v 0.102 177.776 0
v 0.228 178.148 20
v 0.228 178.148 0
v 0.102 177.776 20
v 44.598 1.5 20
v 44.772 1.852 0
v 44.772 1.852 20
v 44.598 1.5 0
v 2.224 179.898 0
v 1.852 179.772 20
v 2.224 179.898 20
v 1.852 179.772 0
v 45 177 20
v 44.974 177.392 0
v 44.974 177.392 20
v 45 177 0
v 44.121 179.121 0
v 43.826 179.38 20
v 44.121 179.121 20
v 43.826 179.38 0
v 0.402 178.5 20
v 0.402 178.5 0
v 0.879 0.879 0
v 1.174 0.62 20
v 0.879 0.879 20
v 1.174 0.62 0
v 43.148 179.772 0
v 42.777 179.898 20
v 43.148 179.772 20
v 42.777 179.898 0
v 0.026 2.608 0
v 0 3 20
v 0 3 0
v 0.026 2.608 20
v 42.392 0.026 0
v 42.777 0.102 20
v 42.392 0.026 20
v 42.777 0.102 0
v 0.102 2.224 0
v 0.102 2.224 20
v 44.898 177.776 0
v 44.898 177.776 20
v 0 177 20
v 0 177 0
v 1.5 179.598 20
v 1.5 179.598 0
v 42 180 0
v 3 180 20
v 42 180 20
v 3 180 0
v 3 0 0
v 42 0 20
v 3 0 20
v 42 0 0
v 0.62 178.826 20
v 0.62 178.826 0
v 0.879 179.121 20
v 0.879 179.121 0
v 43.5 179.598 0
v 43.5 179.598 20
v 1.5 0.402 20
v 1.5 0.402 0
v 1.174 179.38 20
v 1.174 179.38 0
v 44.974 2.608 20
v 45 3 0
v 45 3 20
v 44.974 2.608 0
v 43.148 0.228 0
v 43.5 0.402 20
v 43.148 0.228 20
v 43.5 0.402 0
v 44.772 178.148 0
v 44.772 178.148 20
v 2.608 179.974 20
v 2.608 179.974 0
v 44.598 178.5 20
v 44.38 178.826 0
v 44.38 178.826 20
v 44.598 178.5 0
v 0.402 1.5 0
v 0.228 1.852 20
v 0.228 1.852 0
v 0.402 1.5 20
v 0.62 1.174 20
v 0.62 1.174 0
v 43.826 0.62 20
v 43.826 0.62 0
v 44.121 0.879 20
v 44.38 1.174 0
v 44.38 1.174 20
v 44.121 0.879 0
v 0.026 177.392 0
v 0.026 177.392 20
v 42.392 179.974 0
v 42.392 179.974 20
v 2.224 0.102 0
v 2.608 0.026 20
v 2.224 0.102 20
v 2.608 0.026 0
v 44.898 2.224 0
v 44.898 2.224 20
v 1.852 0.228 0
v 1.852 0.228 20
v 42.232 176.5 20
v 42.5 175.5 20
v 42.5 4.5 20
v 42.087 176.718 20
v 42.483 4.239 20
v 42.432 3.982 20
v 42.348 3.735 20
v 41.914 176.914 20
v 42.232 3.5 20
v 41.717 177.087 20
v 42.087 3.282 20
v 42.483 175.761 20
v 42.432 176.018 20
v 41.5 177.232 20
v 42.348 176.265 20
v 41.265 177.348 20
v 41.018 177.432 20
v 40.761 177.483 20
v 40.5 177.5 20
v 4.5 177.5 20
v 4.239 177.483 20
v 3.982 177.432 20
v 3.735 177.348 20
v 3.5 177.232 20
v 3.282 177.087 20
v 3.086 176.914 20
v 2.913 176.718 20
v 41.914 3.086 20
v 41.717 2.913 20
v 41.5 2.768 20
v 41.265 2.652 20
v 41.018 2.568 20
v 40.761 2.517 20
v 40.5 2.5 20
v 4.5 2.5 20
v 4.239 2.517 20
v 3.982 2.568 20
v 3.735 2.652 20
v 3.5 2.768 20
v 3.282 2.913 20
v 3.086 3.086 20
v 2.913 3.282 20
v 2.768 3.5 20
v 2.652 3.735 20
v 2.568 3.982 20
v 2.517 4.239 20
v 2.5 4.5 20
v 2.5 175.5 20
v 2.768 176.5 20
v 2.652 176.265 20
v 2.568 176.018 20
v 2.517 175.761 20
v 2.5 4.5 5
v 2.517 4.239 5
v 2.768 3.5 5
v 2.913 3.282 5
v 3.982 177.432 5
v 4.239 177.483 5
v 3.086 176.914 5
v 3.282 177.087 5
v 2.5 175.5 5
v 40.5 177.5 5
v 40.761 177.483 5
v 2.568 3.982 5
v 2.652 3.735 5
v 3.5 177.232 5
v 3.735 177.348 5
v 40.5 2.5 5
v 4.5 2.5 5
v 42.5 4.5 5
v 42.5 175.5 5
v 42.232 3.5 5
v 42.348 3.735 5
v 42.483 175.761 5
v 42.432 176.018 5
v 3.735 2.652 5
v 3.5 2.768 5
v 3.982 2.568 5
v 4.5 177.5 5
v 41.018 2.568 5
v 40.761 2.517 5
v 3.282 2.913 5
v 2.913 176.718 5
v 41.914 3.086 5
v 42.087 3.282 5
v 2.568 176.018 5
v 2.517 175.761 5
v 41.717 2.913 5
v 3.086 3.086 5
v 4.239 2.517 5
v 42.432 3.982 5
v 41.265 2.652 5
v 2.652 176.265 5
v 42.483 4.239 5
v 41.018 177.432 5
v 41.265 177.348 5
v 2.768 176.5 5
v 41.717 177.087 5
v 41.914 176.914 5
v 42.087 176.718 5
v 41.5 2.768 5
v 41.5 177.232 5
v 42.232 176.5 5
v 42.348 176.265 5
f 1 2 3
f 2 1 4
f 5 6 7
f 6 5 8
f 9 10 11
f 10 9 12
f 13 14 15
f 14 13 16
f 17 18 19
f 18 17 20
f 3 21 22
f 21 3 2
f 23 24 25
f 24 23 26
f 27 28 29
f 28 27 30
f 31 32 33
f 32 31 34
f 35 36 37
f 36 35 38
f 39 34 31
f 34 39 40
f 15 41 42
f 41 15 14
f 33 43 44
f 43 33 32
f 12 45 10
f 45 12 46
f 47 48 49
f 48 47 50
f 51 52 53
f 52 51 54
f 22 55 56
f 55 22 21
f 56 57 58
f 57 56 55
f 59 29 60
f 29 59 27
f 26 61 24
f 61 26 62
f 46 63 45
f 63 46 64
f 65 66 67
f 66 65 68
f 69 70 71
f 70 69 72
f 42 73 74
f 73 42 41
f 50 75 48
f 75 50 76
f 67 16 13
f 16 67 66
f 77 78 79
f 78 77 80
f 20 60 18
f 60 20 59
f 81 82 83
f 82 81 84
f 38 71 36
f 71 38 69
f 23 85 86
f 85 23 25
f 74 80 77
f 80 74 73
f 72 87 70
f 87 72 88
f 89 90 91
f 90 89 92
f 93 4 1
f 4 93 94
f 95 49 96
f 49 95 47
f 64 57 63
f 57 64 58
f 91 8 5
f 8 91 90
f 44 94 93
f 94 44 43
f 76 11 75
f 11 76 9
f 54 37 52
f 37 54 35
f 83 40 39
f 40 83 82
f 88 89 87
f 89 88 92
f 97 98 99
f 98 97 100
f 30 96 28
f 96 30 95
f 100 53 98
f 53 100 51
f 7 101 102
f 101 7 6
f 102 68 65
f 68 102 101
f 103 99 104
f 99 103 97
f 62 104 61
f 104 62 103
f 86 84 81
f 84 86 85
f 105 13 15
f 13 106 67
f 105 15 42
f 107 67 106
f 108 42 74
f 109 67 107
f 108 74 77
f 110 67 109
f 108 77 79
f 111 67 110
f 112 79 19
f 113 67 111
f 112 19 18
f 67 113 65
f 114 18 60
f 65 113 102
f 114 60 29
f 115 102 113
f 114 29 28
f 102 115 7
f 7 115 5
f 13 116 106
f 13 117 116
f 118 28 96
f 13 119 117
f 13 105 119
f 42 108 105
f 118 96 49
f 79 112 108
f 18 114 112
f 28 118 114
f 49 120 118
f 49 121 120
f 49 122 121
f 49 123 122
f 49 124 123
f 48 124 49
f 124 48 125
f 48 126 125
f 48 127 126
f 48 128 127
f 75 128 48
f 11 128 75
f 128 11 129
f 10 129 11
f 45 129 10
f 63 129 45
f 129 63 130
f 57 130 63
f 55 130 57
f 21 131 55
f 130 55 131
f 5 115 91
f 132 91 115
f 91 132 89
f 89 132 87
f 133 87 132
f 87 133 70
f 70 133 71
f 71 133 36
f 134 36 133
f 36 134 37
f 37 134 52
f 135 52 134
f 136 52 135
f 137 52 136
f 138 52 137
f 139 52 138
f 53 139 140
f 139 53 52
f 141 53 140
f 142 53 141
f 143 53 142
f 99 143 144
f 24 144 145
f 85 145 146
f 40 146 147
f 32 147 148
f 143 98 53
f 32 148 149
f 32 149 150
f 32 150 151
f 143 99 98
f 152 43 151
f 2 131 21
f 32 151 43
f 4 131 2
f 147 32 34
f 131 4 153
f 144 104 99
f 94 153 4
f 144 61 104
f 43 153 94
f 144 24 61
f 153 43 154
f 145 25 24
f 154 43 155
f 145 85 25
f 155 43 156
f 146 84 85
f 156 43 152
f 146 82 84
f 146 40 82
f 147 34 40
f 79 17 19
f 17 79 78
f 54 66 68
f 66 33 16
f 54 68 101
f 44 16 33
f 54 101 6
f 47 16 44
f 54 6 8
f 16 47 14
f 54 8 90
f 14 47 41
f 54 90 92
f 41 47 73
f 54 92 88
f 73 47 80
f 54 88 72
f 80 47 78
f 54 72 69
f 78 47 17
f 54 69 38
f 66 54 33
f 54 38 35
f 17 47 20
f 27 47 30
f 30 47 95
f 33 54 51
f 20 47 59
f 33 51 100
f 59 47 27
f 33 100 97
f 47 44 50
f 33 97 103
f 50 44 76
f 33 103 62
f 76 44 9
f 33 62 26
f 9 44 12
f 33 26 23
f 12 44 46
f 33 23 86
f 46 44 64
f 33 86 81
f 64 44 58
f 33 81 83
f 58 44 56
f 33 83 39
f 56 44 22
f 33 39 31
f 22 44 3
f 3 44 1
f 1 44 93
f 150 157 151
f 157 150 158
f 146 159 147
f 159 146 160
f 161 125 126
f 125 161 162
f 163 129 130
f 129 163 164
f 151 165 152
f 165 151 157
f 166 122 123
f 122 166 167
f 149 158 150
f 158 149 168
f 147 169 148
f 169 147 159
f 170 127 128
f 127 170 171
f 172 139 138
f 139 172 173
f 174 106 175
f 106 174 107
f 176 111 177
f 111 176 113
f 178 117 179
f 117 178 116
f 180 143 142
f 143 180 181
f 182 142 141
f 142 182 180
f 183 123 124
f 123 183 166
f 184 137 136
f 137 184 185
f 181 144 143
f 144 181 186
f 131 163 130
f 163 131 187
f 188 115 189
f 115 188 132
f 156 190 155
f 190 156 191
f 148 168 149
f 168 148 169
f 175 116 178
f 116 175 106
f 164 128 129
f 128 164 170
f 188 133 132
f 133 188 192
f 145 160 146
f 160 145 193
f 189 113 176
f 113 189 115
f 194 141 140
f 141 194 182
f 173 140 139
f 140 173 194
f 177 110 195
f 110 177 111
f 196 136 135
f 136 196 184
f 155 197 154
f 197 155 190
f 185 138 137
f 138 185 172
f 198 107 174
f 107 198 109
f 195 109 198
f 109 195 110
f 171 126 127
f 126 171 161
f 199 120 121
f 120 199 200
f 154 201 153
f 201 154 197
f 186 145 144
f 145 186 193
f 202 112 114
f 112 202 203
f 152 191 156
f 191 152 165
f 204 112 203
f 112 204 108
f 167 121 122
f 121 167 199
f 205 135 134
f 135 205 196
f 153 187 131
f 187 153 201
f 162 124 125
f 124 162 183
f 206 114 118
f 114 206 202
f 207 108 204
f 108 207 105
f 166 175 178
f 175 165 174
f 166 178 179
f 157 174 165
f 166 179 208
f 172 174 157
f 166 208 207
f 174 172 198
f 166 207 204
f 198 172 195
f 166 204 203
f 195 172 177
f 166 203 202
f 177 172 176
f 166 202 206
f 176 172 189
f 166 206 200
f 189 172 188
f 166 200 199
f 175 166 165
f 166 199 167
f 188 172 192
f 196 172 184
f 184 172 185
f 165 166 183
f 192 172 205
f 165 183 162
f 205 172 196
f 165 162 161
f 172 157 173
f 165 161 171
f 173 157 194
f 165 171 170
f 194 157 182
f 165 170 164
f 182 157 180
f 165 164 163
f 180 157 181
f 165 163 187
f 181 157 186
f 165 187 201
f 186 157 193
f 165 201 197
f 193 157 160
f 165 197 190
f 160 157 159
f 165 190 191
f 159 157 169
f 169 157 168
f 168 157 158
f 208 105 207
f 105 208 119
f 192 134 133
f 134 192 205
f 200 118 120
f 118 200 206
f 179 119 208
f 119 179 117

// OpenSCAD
/* [Tray Dimensions] */
tray_width = 45;
tray_length = 180;
tray_height = 20;

/* [Trough] */
trough_width = 40;
trough_depth = 15;

/* [Print Settings] */
wall = 2.5;
corner_radius = 3;
$fn = 48;

// PRINT: Flat on bed, no supports

module rounded_rect(w, l, h, r) {
    hull() {
        for (x = [r, w - r])
            for (y = [r, l - r])
                translate([x, y, 0])
                    cylinder(r = r, h = h);
    }
}

difference() {
    // Outer shell
    rounded_rect(tray_width, tray_length, tray_height, corner_radius);

    // Inner trough - centered in width, inset from ends
    trough_x = (tray_width - trough_width) / 2;
    trough_y = wall;
    translate([trough_x, trough_y, tray_height - trough_depth])
        rounded_rect(trough_width, tray_length - wall * 2, trough_depth + 1, corner_radius - 1);
}
